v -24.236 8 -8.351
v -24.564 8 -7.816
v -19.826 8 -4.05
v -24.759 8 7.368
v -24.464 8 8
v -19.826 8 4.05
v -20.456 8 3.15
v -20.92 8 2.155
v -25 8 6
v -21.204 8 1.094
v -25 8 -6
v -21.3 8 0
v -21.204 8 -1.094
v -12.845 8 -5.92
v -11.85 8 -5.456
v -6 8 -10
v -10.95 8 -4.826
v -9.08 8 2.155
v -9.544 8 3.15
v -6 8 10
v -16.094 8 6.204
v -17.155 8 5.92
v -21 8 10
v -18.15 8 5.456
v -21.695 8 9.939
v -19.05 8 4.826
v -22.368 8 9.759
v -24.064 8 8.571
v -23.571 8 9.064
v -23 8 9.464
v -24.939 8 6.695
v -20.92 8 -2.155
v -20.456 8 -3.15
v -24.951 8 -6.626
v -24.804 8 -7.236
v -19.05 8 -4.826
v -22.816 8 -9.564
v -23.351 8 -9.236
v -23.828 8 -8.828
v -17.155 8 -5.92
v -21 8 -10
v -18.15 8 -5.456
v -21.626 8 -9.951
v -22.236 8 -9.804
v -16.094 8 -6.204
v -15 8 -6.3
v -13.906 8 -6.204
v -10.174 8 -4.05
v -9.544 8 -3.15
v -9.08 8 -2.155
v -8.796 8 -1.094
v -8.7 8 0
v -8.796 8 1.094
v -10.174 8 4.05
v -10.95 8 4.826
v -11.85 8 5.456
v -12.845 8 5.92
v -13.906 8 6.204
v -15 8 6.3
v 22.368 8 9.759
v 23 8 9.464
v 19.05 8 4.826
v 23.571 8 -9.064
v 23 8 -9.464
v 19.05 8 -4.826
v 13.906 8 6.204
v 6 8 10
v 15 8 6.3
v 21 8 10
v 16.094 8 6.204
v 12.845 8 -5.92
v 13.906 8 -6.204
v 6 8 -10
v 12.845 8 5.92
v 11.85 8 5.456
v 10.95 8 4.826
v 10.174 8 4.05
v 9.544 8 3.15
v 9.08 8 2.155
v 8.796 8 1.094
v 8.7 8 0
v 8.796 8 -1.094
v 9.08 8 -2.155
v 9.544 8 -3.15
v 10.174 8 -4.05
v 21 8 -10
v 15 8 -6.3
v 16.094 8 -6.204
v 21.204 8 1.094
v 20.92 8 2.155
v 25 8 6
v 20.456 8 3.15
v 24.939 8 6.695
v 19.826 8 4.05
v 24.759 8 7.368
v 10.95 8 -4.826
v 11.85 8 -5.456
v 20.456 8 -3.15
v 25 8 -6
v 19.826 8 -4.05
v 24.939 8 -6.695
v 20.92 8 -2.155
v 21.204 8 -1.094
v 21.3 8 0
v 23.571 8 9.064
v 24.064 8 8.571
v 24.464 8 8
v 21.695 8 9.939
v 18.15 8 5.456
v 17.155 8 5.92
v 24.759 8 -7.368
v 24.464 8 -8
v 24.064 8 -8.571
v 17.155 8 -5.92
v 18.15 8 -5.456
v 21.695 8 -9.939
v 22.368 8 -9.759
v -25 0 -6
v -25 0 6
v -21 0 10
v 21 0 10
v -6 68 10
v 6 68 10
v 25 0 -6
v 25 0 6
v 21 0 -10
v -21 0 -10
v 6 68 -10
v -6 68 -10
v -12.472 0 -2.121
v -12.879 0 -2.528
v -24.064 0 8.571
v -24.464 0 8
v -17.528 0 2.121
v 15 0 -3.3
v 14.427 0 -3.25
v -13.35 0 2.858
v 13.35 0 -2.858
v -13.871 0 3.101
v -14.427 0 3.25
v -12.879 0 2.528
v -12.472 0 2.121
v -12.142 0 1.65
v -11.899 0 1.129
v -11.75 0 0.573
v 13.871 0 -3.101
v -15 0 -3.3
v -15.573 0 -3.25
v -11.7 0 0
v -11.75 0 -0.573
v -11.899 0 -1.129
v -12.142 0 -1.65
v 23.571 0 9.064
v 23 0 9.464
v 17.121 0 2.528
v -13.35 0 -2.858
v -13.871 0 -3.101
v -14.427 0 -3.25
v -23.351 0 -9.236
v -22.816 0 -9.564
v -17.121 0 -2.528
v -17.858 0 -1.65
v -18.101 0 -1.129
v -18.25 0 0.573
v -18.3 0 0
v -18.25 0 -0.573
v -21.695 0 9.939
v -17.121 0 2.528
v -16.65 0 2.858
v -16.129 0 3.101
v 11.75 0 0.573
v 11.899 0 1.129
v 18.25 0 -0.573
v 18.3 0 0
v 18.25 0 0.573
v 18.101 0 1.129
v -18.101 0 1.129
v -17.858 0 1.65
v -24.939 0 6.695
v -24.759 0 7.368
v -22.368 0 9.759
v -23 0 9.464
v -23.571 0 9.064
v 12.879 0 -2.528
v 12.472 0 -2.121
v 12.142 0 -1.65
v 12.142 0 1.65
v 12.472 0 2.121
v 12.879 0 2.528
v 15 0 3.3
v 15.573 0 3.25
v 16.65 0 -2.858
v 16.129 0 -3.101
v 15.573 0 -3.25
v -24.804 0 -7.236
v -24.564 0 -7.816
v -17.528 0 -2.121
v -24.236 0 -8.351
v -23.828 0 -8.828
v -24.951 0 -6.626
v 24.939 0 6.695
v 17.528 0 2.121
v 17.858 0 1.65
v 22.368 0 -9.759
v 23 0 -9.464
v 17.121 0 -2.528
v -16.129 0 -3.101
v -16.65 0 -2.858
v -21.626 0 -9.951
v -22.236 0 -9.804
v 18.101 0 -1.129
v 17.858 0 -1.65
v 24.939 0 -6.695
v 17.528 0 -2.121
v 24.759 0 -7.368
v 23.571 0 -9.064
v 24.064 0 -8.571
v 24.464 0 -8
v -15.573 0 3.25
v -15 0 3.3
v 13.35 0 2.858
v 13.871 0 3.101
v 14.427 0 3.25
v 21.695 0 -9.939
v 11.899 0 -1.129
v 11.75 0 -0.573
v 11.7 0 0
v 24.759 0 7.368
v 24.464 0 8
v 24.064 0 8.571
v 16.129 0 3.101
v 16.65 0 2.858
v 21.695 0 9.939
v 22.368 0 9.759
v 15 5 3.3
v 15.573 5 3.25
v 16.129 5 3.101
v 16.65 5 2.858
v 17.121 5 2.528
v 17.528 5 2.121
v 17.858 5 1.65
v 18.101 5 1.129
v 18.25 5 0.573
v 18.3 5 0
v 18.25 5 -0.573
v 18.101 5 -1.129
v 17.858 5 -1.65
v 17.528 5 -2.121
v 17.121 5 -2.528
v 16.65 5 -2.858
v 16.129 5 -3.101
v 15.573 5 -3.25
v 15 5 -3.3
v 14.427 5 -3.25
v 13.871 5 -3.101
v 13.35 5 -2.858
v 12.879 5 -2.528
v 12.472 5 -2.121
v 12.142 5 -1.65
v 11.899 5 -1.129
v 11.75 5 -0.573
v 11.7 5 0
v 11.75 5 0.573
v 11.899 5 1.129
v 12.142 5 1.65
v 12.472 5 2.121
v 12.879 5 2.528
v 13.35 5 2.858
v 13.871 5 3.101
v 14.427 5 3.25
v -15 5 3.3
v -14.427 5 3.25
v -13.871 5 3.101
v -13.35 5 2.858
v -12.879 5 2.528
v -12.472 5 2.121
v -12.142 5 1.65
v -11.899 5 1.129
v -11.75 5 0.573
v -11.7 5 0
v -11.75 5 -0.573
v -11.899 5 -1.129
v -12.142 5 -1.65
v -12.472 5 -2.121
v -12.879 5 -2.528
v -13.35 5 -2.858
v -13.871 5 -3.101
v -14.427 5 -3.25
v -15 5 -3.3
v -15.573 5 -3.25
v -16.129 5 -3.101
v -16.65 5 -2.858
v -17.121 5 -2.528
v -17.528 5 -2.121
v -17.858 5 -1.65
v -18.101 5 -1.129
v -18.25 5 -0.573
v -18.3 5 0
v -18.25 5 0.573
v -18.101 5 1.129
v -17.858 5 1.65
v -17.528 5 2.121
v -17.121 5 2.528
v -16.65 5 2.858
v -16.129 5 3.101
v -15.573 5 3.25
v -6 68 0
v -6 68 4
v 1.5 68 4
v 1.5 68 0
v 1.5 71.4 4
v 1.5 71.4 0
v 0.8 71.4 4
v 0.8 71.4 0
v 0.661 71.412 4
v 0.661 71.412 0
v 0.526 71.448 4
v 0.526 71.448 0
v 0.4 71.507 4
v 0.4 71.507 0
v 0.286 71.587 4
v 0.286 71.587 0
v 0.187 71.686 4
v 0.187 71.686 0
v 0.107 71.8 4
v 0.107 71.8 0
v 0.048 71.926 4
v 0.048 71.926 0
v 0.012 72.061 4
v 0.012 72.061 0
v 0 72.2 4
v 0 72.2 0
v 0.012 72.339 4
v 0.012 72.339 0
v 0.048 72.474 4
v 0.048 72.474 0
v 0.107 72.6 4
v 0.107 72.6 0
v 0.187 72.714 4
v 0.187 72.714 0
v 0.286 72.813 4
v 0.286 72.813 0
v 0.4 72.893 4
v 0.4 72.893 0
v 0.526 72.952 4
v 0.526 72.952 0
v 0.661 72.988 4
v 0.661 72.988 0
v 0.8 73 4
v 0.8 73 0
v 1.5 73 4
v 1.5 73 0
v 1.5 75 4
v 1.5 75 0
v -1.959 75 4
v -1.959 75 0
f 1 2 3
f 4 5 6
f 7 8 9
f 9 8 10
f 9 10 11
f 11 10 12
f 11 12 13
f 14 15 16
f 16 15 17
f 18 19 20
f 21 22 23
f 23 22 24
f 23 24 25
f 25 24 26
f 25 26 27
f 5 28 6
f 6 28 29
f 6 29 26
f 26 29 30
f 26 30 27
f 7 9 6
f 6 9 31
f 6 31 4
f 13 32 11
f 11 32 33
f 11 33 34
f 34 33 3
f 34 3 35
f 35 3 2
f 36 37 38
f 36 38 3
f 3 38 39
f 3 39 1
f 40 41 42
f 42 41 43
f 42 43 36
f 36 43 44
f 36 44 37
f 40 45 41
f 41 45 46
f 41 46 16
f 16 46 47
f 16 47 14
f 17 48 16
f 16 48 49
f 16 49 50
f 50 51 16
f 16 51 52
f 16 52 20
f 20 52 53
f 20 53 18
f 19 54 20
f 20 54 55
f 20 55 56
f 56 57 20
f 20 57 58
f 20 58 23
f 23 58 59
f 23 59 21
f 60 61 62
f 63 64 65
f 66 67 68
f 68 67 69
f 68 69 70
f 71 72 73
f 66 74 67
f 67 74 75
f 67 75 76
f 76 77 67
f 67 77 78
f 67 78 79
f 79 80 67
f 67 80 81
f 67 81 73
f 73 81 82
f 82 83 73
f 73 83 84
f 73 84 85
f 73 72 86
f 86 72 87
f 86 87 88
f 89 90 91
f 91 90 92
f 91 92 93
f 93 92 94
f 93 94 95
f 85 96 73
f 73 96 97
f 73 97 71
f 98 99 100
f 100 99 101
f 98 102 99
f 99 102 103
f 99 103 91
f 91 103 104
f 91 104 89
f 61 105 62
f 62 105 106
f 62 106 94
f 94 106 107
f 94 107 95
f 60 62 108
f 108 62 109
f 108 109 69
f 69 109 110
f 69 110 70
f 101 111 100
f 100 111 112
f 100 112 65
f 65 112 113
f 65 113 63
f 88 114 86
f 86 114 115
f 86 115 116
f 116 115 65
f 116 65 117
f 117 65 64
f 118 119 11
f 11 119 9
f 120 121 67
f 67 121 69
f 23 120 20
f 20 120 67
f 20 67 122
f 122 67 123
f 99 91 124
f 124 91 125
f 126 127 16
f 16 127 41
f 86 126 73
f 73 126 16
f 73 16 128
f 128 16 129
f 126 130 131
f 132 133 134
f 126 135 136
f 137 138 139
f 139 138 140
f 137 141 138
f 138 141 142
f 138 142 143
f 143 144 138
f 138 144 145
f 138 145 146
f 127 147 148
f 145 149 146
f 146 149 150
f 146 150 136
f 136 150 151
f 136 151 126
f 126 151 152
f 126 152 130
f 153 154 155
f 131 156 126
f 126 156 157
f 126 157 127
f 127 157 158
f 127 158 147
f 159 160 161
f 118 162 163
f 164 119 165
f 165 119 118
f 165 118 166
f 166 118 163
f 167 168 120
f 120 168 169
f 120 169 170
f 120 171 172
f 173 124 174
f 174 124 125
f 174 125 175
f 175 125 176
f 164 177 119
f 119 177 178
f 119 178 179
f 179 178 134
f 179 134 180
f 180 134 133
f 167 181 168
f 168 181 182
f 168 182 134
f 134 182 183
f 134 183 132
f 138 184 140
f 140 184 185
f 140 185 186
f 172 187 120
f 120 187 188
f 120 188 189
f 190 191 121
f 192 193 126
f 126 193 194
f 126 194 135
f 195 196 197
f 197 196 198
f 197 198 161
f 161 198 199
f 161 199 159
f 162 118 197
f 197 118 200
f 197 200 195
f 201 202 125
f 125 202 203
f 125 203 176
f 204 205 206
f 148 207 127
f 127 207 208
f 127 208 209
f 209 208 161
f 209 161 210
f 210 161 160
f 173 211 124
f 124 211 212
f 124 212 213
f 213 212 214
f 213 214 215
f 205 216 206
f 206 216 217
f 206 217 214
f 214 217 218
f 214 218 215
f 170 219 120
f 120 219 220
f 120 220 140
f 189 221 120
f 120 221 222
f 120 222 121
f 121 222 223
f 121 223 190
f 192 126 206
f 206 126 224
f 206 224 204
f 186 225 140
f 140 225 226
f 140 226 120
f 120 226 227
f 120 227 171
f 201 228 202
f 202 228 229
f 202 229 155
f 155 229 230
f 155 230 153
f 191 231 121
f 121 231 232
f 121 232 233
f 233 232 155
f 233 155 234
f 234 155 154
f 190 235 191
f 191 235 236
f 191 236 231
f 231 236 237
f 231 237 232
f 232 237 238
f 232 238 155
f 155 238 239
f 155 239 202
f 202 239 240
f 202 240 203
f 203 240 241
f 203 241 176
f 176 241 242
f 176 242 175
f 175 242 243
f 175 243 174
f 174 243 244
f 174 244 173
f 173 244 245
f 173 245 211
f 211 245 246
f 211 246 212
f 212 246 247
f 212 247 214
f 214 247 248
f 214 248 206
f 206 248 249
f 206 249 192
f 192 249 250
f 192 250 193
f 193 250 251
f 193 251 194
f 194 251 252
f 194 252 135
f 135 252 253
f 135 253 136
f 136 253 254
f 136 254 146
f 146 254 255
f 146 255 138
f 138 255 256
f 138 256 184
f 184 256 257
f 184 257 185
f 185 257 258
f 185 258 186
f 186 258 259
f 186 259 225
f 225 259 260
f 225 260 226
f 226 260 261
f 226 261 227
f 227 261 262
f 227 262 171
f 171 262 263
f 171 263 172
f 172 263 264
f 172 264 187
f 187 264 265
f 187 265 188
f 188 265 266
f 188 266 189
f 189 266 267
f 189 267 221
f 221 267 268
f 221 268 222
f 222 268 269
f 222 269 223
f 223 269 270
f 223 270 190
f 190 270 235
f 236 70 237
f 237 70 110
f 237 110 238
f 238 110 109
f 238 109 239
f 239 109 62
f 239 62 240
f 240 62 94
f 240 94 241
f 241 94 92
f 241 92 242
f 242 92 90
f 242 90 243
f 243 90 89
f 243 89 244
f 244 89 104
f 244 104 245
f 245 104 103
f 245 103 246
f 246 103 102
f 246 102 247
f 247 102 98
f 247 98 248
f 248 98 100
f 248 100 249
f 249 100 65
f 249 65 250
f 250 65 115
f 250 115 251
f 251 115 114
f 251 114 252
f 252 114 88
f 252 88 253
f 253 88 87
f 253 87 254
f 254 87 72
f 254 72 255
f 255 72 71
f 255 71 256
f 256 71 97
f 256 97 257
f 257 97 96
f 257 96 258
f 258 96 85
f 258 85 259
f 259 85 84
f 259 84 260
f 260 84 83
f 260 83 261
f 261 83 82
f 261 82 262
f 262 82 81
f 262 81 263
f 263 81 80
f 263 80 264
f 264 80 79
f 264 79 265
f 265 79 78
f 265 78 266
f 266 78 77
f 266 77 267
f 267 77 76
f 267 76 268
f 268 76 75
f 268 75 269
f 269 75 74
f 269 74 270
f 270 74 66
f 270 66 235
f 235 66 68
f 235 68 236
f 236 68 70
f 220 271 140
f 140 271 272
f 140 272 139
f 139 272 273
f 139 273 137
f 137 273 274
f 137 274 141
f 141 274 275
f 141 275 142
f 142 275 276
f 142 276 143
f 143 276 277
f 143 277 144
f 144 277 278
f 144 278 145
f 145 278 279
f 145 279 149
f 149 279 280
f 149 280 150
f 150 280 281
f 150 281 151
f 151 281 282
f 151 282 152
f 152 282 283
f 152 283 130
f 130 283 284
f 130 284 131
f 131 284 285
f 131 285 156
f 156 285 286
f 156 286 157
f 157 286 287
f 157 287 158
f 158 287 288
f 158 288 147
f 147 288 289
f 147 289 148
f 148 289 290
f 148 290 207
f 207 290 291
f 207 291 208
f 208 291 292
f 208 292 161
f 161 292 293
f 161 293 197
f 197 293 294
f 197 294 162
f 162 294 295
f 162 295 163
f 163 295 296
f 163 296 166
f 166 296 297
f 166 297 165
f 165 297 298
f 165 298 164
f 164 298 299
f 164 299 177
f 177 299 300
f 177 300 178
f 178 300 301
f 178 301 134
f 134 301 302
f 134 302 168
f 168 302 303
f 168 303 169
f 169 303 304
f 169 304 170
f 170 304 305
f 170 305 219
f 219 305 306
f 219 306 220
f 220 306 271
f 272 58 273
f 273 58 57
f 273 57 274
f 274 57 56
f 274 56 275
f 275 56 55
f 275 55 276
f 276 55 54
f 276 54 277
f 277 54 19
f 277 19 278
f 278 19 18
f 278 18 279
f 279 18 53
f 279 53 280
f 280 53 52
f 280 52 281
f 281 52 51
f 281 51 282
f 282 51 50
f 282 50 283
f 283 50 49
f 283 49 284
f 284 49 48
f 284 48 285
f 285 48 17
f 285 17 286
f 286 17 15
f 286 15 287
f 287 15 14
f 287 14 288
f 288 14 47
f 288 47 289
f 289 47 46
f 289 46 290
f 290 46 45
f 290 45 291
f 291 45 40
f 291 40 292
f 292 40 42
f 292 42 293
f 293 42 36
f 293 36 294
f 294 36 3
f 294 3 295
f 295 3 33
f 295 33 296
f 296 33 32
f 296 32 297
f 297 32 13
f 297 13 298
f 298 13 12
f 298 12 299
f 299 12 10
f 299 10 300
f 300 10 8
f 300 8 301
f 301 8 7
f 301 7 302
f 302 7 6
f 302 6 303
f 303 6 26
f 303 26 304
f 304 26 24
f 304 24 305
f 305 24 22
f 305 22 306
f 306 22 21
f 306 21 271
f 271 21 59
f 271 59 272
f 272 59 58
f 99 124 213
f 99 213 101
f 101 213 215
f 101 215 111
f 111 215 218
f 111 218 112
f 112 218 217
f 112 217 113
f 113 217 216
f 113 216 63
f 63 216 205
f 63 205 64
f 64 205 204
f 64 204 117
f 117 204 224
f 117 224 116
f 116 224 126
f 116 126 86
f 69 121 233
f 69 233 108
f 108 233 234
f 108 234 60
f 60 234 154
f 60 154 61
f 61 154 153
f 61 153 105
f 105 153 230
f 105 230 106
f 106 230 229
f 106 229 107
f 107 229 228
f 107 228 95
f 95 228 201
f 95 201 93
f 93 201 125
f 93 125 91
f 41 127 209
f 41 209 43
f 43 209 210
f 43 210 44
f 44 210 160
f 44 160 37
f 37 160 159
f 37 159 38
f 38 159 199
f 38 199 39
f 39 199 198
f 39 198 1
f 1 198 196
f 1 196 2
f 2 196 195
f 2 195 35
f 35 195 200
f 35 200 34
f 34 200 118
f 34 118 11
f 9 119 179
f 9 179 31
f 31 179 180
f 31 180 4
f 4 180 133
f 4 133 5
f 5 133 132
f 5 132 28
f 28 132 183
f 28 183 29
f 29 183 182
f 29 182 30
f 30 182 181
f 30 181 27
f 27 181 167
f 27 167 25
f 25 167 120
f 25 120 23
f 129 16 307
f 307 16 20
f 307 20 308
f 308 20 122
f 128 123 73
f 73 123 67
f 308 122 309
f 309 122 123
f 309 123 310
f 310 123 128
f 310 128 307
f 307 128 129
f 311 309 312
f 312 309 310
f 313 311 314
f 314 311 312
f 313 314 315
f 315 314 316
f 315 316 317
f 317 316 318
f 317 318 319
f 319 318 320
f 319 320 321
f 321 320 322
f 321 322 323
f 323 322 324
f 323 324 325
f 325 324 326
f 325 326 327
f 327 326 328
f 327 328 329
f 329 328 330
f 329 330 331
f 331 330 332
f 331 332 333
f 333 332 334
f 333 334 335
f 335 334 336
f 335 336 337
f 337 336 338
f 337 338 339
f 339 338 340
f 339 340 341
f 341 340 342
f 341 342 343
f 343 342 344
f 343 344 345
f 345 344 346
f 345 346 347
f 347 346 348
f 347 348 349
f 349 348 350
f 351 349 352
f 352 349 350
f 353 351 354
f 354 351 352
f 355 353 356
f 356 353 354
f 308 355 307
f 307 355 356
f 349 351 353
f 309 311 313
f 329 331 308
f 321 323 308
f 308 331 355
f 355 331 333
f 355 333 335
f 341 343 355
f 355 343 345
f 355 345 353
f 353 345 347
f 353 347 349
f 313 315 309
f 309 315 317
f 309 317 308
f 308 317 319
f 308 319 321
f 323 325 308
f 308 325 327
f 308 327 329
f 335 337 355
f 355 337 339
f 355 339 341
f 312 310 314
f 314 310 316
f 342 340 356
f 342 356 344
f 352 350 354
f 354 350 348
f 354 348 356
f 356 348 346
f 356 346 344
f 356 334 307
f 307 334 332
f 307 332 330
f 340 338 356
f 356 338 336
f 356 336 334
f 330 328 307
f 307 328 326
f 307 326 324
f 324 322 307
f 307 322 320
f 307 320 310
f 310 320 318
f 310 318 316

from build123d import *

# Parameters (mm, degrees)
SKETCH1_W                                       = 50
SKETCH1_H                                       = 20
BOSS_EXTRUDE1_DEPTH                             = 8
CSK_FOR_M6_FLAT_HEAD_MACHINE_SCREW1_D           = 6.6
CSK_FOR_M6_FLAT_HEAD_MACHINE_SCREW1_CSINK_D     = 12.6
CSK_FOR_M6_FLAT_HEAD_MACHINE_SCREW1_CSINK_ANGLE = 90
FILLET1_R                                       = 4
SKETCH3_W                                       = 12
SKETCH3_H                                       = 20
BOSS_EXTRUDE2_DEPTH                             = 60
BOSS_EXTRUDE3_DEPTH                             = 4


with BuildPart() as part:
    # Sketch1 → Boss-Extrude1 (new body)
    with BuildSketch(Plane(origin=(0, 0, 0), x_dir=(1, 0, 0), z_dir=(0, 1, 0))):
        Rectangle(SKETCH1_W, SKETCH1_H)
    extrude(amount=BOSS_EXTRUDE1_DEPTH)

    # CSK for M6 Flat Head Machine Screw1 (through all)
    with Locations(Plane(origin=(-15, 8, 0), x_dir=(0, 0, 1), z_dir=(0, 1, 0))):
        with Locations((0, 0), (0, 30)):
            CounterSinkHole(CSK_FOR_M6_FLAT_HEAD_MACHINE_SCREW1_D / 2, CSK_FOR_M6_FLAT_HEAD_MACHINE_SCREW1_CSINK_D / 2, counter_sink_angle=CSK_FOR_M6_FLAT_HEAD_MACHINE_SCREW1_CSINK_ANGLE)

    # Fillet1
    fillet1_edges = [part.edges().sort_by_distance(p)[0] for p in [
        (-25, 4, -10),
        (25, 4, -10),
        (25, 4, 10),
        (-25, 4, 10),
    ]]
    fillet(fillet1_edges, radius=FILLET1_R)

    # Sketch3 → Boss-Extrude2 (add)
    with BuildSketch(Plane(origin=(0, 8, 0), x_dir=(1, 0, 0), z_dir=(0, 1, 0))):
        Rectangle(SKETCH3_W, SKETCH3_H)
    extrude(amount=BOSS_EXTRUDE2_DEPTH)

    # Sketch4 → Boss-Extrude3 (add)
    with BuildSketch(Plane.XY):
        with BuildLine():
            Line((-6, 68), (-1.958548116, 75))
            Line((-1.958548116, 75), (1.5, 75))
            Line((1.5, 75), (1.5, 73))
            Line((1.5, 73), (0.8, 73))
            ThreePointArc((0.8, 73), (0, 72.2), (0.8, 71.4))
            Line((0.8, 71.4), (1.5, 71.4))
            Line((1.5, 71.4), (1.5, 68))
            Line((1.5, 68), (-6, 68))
        make_face()
    extrude(amount=BOSS_EXTRUDE3_DEPTH)


solid = part.part
